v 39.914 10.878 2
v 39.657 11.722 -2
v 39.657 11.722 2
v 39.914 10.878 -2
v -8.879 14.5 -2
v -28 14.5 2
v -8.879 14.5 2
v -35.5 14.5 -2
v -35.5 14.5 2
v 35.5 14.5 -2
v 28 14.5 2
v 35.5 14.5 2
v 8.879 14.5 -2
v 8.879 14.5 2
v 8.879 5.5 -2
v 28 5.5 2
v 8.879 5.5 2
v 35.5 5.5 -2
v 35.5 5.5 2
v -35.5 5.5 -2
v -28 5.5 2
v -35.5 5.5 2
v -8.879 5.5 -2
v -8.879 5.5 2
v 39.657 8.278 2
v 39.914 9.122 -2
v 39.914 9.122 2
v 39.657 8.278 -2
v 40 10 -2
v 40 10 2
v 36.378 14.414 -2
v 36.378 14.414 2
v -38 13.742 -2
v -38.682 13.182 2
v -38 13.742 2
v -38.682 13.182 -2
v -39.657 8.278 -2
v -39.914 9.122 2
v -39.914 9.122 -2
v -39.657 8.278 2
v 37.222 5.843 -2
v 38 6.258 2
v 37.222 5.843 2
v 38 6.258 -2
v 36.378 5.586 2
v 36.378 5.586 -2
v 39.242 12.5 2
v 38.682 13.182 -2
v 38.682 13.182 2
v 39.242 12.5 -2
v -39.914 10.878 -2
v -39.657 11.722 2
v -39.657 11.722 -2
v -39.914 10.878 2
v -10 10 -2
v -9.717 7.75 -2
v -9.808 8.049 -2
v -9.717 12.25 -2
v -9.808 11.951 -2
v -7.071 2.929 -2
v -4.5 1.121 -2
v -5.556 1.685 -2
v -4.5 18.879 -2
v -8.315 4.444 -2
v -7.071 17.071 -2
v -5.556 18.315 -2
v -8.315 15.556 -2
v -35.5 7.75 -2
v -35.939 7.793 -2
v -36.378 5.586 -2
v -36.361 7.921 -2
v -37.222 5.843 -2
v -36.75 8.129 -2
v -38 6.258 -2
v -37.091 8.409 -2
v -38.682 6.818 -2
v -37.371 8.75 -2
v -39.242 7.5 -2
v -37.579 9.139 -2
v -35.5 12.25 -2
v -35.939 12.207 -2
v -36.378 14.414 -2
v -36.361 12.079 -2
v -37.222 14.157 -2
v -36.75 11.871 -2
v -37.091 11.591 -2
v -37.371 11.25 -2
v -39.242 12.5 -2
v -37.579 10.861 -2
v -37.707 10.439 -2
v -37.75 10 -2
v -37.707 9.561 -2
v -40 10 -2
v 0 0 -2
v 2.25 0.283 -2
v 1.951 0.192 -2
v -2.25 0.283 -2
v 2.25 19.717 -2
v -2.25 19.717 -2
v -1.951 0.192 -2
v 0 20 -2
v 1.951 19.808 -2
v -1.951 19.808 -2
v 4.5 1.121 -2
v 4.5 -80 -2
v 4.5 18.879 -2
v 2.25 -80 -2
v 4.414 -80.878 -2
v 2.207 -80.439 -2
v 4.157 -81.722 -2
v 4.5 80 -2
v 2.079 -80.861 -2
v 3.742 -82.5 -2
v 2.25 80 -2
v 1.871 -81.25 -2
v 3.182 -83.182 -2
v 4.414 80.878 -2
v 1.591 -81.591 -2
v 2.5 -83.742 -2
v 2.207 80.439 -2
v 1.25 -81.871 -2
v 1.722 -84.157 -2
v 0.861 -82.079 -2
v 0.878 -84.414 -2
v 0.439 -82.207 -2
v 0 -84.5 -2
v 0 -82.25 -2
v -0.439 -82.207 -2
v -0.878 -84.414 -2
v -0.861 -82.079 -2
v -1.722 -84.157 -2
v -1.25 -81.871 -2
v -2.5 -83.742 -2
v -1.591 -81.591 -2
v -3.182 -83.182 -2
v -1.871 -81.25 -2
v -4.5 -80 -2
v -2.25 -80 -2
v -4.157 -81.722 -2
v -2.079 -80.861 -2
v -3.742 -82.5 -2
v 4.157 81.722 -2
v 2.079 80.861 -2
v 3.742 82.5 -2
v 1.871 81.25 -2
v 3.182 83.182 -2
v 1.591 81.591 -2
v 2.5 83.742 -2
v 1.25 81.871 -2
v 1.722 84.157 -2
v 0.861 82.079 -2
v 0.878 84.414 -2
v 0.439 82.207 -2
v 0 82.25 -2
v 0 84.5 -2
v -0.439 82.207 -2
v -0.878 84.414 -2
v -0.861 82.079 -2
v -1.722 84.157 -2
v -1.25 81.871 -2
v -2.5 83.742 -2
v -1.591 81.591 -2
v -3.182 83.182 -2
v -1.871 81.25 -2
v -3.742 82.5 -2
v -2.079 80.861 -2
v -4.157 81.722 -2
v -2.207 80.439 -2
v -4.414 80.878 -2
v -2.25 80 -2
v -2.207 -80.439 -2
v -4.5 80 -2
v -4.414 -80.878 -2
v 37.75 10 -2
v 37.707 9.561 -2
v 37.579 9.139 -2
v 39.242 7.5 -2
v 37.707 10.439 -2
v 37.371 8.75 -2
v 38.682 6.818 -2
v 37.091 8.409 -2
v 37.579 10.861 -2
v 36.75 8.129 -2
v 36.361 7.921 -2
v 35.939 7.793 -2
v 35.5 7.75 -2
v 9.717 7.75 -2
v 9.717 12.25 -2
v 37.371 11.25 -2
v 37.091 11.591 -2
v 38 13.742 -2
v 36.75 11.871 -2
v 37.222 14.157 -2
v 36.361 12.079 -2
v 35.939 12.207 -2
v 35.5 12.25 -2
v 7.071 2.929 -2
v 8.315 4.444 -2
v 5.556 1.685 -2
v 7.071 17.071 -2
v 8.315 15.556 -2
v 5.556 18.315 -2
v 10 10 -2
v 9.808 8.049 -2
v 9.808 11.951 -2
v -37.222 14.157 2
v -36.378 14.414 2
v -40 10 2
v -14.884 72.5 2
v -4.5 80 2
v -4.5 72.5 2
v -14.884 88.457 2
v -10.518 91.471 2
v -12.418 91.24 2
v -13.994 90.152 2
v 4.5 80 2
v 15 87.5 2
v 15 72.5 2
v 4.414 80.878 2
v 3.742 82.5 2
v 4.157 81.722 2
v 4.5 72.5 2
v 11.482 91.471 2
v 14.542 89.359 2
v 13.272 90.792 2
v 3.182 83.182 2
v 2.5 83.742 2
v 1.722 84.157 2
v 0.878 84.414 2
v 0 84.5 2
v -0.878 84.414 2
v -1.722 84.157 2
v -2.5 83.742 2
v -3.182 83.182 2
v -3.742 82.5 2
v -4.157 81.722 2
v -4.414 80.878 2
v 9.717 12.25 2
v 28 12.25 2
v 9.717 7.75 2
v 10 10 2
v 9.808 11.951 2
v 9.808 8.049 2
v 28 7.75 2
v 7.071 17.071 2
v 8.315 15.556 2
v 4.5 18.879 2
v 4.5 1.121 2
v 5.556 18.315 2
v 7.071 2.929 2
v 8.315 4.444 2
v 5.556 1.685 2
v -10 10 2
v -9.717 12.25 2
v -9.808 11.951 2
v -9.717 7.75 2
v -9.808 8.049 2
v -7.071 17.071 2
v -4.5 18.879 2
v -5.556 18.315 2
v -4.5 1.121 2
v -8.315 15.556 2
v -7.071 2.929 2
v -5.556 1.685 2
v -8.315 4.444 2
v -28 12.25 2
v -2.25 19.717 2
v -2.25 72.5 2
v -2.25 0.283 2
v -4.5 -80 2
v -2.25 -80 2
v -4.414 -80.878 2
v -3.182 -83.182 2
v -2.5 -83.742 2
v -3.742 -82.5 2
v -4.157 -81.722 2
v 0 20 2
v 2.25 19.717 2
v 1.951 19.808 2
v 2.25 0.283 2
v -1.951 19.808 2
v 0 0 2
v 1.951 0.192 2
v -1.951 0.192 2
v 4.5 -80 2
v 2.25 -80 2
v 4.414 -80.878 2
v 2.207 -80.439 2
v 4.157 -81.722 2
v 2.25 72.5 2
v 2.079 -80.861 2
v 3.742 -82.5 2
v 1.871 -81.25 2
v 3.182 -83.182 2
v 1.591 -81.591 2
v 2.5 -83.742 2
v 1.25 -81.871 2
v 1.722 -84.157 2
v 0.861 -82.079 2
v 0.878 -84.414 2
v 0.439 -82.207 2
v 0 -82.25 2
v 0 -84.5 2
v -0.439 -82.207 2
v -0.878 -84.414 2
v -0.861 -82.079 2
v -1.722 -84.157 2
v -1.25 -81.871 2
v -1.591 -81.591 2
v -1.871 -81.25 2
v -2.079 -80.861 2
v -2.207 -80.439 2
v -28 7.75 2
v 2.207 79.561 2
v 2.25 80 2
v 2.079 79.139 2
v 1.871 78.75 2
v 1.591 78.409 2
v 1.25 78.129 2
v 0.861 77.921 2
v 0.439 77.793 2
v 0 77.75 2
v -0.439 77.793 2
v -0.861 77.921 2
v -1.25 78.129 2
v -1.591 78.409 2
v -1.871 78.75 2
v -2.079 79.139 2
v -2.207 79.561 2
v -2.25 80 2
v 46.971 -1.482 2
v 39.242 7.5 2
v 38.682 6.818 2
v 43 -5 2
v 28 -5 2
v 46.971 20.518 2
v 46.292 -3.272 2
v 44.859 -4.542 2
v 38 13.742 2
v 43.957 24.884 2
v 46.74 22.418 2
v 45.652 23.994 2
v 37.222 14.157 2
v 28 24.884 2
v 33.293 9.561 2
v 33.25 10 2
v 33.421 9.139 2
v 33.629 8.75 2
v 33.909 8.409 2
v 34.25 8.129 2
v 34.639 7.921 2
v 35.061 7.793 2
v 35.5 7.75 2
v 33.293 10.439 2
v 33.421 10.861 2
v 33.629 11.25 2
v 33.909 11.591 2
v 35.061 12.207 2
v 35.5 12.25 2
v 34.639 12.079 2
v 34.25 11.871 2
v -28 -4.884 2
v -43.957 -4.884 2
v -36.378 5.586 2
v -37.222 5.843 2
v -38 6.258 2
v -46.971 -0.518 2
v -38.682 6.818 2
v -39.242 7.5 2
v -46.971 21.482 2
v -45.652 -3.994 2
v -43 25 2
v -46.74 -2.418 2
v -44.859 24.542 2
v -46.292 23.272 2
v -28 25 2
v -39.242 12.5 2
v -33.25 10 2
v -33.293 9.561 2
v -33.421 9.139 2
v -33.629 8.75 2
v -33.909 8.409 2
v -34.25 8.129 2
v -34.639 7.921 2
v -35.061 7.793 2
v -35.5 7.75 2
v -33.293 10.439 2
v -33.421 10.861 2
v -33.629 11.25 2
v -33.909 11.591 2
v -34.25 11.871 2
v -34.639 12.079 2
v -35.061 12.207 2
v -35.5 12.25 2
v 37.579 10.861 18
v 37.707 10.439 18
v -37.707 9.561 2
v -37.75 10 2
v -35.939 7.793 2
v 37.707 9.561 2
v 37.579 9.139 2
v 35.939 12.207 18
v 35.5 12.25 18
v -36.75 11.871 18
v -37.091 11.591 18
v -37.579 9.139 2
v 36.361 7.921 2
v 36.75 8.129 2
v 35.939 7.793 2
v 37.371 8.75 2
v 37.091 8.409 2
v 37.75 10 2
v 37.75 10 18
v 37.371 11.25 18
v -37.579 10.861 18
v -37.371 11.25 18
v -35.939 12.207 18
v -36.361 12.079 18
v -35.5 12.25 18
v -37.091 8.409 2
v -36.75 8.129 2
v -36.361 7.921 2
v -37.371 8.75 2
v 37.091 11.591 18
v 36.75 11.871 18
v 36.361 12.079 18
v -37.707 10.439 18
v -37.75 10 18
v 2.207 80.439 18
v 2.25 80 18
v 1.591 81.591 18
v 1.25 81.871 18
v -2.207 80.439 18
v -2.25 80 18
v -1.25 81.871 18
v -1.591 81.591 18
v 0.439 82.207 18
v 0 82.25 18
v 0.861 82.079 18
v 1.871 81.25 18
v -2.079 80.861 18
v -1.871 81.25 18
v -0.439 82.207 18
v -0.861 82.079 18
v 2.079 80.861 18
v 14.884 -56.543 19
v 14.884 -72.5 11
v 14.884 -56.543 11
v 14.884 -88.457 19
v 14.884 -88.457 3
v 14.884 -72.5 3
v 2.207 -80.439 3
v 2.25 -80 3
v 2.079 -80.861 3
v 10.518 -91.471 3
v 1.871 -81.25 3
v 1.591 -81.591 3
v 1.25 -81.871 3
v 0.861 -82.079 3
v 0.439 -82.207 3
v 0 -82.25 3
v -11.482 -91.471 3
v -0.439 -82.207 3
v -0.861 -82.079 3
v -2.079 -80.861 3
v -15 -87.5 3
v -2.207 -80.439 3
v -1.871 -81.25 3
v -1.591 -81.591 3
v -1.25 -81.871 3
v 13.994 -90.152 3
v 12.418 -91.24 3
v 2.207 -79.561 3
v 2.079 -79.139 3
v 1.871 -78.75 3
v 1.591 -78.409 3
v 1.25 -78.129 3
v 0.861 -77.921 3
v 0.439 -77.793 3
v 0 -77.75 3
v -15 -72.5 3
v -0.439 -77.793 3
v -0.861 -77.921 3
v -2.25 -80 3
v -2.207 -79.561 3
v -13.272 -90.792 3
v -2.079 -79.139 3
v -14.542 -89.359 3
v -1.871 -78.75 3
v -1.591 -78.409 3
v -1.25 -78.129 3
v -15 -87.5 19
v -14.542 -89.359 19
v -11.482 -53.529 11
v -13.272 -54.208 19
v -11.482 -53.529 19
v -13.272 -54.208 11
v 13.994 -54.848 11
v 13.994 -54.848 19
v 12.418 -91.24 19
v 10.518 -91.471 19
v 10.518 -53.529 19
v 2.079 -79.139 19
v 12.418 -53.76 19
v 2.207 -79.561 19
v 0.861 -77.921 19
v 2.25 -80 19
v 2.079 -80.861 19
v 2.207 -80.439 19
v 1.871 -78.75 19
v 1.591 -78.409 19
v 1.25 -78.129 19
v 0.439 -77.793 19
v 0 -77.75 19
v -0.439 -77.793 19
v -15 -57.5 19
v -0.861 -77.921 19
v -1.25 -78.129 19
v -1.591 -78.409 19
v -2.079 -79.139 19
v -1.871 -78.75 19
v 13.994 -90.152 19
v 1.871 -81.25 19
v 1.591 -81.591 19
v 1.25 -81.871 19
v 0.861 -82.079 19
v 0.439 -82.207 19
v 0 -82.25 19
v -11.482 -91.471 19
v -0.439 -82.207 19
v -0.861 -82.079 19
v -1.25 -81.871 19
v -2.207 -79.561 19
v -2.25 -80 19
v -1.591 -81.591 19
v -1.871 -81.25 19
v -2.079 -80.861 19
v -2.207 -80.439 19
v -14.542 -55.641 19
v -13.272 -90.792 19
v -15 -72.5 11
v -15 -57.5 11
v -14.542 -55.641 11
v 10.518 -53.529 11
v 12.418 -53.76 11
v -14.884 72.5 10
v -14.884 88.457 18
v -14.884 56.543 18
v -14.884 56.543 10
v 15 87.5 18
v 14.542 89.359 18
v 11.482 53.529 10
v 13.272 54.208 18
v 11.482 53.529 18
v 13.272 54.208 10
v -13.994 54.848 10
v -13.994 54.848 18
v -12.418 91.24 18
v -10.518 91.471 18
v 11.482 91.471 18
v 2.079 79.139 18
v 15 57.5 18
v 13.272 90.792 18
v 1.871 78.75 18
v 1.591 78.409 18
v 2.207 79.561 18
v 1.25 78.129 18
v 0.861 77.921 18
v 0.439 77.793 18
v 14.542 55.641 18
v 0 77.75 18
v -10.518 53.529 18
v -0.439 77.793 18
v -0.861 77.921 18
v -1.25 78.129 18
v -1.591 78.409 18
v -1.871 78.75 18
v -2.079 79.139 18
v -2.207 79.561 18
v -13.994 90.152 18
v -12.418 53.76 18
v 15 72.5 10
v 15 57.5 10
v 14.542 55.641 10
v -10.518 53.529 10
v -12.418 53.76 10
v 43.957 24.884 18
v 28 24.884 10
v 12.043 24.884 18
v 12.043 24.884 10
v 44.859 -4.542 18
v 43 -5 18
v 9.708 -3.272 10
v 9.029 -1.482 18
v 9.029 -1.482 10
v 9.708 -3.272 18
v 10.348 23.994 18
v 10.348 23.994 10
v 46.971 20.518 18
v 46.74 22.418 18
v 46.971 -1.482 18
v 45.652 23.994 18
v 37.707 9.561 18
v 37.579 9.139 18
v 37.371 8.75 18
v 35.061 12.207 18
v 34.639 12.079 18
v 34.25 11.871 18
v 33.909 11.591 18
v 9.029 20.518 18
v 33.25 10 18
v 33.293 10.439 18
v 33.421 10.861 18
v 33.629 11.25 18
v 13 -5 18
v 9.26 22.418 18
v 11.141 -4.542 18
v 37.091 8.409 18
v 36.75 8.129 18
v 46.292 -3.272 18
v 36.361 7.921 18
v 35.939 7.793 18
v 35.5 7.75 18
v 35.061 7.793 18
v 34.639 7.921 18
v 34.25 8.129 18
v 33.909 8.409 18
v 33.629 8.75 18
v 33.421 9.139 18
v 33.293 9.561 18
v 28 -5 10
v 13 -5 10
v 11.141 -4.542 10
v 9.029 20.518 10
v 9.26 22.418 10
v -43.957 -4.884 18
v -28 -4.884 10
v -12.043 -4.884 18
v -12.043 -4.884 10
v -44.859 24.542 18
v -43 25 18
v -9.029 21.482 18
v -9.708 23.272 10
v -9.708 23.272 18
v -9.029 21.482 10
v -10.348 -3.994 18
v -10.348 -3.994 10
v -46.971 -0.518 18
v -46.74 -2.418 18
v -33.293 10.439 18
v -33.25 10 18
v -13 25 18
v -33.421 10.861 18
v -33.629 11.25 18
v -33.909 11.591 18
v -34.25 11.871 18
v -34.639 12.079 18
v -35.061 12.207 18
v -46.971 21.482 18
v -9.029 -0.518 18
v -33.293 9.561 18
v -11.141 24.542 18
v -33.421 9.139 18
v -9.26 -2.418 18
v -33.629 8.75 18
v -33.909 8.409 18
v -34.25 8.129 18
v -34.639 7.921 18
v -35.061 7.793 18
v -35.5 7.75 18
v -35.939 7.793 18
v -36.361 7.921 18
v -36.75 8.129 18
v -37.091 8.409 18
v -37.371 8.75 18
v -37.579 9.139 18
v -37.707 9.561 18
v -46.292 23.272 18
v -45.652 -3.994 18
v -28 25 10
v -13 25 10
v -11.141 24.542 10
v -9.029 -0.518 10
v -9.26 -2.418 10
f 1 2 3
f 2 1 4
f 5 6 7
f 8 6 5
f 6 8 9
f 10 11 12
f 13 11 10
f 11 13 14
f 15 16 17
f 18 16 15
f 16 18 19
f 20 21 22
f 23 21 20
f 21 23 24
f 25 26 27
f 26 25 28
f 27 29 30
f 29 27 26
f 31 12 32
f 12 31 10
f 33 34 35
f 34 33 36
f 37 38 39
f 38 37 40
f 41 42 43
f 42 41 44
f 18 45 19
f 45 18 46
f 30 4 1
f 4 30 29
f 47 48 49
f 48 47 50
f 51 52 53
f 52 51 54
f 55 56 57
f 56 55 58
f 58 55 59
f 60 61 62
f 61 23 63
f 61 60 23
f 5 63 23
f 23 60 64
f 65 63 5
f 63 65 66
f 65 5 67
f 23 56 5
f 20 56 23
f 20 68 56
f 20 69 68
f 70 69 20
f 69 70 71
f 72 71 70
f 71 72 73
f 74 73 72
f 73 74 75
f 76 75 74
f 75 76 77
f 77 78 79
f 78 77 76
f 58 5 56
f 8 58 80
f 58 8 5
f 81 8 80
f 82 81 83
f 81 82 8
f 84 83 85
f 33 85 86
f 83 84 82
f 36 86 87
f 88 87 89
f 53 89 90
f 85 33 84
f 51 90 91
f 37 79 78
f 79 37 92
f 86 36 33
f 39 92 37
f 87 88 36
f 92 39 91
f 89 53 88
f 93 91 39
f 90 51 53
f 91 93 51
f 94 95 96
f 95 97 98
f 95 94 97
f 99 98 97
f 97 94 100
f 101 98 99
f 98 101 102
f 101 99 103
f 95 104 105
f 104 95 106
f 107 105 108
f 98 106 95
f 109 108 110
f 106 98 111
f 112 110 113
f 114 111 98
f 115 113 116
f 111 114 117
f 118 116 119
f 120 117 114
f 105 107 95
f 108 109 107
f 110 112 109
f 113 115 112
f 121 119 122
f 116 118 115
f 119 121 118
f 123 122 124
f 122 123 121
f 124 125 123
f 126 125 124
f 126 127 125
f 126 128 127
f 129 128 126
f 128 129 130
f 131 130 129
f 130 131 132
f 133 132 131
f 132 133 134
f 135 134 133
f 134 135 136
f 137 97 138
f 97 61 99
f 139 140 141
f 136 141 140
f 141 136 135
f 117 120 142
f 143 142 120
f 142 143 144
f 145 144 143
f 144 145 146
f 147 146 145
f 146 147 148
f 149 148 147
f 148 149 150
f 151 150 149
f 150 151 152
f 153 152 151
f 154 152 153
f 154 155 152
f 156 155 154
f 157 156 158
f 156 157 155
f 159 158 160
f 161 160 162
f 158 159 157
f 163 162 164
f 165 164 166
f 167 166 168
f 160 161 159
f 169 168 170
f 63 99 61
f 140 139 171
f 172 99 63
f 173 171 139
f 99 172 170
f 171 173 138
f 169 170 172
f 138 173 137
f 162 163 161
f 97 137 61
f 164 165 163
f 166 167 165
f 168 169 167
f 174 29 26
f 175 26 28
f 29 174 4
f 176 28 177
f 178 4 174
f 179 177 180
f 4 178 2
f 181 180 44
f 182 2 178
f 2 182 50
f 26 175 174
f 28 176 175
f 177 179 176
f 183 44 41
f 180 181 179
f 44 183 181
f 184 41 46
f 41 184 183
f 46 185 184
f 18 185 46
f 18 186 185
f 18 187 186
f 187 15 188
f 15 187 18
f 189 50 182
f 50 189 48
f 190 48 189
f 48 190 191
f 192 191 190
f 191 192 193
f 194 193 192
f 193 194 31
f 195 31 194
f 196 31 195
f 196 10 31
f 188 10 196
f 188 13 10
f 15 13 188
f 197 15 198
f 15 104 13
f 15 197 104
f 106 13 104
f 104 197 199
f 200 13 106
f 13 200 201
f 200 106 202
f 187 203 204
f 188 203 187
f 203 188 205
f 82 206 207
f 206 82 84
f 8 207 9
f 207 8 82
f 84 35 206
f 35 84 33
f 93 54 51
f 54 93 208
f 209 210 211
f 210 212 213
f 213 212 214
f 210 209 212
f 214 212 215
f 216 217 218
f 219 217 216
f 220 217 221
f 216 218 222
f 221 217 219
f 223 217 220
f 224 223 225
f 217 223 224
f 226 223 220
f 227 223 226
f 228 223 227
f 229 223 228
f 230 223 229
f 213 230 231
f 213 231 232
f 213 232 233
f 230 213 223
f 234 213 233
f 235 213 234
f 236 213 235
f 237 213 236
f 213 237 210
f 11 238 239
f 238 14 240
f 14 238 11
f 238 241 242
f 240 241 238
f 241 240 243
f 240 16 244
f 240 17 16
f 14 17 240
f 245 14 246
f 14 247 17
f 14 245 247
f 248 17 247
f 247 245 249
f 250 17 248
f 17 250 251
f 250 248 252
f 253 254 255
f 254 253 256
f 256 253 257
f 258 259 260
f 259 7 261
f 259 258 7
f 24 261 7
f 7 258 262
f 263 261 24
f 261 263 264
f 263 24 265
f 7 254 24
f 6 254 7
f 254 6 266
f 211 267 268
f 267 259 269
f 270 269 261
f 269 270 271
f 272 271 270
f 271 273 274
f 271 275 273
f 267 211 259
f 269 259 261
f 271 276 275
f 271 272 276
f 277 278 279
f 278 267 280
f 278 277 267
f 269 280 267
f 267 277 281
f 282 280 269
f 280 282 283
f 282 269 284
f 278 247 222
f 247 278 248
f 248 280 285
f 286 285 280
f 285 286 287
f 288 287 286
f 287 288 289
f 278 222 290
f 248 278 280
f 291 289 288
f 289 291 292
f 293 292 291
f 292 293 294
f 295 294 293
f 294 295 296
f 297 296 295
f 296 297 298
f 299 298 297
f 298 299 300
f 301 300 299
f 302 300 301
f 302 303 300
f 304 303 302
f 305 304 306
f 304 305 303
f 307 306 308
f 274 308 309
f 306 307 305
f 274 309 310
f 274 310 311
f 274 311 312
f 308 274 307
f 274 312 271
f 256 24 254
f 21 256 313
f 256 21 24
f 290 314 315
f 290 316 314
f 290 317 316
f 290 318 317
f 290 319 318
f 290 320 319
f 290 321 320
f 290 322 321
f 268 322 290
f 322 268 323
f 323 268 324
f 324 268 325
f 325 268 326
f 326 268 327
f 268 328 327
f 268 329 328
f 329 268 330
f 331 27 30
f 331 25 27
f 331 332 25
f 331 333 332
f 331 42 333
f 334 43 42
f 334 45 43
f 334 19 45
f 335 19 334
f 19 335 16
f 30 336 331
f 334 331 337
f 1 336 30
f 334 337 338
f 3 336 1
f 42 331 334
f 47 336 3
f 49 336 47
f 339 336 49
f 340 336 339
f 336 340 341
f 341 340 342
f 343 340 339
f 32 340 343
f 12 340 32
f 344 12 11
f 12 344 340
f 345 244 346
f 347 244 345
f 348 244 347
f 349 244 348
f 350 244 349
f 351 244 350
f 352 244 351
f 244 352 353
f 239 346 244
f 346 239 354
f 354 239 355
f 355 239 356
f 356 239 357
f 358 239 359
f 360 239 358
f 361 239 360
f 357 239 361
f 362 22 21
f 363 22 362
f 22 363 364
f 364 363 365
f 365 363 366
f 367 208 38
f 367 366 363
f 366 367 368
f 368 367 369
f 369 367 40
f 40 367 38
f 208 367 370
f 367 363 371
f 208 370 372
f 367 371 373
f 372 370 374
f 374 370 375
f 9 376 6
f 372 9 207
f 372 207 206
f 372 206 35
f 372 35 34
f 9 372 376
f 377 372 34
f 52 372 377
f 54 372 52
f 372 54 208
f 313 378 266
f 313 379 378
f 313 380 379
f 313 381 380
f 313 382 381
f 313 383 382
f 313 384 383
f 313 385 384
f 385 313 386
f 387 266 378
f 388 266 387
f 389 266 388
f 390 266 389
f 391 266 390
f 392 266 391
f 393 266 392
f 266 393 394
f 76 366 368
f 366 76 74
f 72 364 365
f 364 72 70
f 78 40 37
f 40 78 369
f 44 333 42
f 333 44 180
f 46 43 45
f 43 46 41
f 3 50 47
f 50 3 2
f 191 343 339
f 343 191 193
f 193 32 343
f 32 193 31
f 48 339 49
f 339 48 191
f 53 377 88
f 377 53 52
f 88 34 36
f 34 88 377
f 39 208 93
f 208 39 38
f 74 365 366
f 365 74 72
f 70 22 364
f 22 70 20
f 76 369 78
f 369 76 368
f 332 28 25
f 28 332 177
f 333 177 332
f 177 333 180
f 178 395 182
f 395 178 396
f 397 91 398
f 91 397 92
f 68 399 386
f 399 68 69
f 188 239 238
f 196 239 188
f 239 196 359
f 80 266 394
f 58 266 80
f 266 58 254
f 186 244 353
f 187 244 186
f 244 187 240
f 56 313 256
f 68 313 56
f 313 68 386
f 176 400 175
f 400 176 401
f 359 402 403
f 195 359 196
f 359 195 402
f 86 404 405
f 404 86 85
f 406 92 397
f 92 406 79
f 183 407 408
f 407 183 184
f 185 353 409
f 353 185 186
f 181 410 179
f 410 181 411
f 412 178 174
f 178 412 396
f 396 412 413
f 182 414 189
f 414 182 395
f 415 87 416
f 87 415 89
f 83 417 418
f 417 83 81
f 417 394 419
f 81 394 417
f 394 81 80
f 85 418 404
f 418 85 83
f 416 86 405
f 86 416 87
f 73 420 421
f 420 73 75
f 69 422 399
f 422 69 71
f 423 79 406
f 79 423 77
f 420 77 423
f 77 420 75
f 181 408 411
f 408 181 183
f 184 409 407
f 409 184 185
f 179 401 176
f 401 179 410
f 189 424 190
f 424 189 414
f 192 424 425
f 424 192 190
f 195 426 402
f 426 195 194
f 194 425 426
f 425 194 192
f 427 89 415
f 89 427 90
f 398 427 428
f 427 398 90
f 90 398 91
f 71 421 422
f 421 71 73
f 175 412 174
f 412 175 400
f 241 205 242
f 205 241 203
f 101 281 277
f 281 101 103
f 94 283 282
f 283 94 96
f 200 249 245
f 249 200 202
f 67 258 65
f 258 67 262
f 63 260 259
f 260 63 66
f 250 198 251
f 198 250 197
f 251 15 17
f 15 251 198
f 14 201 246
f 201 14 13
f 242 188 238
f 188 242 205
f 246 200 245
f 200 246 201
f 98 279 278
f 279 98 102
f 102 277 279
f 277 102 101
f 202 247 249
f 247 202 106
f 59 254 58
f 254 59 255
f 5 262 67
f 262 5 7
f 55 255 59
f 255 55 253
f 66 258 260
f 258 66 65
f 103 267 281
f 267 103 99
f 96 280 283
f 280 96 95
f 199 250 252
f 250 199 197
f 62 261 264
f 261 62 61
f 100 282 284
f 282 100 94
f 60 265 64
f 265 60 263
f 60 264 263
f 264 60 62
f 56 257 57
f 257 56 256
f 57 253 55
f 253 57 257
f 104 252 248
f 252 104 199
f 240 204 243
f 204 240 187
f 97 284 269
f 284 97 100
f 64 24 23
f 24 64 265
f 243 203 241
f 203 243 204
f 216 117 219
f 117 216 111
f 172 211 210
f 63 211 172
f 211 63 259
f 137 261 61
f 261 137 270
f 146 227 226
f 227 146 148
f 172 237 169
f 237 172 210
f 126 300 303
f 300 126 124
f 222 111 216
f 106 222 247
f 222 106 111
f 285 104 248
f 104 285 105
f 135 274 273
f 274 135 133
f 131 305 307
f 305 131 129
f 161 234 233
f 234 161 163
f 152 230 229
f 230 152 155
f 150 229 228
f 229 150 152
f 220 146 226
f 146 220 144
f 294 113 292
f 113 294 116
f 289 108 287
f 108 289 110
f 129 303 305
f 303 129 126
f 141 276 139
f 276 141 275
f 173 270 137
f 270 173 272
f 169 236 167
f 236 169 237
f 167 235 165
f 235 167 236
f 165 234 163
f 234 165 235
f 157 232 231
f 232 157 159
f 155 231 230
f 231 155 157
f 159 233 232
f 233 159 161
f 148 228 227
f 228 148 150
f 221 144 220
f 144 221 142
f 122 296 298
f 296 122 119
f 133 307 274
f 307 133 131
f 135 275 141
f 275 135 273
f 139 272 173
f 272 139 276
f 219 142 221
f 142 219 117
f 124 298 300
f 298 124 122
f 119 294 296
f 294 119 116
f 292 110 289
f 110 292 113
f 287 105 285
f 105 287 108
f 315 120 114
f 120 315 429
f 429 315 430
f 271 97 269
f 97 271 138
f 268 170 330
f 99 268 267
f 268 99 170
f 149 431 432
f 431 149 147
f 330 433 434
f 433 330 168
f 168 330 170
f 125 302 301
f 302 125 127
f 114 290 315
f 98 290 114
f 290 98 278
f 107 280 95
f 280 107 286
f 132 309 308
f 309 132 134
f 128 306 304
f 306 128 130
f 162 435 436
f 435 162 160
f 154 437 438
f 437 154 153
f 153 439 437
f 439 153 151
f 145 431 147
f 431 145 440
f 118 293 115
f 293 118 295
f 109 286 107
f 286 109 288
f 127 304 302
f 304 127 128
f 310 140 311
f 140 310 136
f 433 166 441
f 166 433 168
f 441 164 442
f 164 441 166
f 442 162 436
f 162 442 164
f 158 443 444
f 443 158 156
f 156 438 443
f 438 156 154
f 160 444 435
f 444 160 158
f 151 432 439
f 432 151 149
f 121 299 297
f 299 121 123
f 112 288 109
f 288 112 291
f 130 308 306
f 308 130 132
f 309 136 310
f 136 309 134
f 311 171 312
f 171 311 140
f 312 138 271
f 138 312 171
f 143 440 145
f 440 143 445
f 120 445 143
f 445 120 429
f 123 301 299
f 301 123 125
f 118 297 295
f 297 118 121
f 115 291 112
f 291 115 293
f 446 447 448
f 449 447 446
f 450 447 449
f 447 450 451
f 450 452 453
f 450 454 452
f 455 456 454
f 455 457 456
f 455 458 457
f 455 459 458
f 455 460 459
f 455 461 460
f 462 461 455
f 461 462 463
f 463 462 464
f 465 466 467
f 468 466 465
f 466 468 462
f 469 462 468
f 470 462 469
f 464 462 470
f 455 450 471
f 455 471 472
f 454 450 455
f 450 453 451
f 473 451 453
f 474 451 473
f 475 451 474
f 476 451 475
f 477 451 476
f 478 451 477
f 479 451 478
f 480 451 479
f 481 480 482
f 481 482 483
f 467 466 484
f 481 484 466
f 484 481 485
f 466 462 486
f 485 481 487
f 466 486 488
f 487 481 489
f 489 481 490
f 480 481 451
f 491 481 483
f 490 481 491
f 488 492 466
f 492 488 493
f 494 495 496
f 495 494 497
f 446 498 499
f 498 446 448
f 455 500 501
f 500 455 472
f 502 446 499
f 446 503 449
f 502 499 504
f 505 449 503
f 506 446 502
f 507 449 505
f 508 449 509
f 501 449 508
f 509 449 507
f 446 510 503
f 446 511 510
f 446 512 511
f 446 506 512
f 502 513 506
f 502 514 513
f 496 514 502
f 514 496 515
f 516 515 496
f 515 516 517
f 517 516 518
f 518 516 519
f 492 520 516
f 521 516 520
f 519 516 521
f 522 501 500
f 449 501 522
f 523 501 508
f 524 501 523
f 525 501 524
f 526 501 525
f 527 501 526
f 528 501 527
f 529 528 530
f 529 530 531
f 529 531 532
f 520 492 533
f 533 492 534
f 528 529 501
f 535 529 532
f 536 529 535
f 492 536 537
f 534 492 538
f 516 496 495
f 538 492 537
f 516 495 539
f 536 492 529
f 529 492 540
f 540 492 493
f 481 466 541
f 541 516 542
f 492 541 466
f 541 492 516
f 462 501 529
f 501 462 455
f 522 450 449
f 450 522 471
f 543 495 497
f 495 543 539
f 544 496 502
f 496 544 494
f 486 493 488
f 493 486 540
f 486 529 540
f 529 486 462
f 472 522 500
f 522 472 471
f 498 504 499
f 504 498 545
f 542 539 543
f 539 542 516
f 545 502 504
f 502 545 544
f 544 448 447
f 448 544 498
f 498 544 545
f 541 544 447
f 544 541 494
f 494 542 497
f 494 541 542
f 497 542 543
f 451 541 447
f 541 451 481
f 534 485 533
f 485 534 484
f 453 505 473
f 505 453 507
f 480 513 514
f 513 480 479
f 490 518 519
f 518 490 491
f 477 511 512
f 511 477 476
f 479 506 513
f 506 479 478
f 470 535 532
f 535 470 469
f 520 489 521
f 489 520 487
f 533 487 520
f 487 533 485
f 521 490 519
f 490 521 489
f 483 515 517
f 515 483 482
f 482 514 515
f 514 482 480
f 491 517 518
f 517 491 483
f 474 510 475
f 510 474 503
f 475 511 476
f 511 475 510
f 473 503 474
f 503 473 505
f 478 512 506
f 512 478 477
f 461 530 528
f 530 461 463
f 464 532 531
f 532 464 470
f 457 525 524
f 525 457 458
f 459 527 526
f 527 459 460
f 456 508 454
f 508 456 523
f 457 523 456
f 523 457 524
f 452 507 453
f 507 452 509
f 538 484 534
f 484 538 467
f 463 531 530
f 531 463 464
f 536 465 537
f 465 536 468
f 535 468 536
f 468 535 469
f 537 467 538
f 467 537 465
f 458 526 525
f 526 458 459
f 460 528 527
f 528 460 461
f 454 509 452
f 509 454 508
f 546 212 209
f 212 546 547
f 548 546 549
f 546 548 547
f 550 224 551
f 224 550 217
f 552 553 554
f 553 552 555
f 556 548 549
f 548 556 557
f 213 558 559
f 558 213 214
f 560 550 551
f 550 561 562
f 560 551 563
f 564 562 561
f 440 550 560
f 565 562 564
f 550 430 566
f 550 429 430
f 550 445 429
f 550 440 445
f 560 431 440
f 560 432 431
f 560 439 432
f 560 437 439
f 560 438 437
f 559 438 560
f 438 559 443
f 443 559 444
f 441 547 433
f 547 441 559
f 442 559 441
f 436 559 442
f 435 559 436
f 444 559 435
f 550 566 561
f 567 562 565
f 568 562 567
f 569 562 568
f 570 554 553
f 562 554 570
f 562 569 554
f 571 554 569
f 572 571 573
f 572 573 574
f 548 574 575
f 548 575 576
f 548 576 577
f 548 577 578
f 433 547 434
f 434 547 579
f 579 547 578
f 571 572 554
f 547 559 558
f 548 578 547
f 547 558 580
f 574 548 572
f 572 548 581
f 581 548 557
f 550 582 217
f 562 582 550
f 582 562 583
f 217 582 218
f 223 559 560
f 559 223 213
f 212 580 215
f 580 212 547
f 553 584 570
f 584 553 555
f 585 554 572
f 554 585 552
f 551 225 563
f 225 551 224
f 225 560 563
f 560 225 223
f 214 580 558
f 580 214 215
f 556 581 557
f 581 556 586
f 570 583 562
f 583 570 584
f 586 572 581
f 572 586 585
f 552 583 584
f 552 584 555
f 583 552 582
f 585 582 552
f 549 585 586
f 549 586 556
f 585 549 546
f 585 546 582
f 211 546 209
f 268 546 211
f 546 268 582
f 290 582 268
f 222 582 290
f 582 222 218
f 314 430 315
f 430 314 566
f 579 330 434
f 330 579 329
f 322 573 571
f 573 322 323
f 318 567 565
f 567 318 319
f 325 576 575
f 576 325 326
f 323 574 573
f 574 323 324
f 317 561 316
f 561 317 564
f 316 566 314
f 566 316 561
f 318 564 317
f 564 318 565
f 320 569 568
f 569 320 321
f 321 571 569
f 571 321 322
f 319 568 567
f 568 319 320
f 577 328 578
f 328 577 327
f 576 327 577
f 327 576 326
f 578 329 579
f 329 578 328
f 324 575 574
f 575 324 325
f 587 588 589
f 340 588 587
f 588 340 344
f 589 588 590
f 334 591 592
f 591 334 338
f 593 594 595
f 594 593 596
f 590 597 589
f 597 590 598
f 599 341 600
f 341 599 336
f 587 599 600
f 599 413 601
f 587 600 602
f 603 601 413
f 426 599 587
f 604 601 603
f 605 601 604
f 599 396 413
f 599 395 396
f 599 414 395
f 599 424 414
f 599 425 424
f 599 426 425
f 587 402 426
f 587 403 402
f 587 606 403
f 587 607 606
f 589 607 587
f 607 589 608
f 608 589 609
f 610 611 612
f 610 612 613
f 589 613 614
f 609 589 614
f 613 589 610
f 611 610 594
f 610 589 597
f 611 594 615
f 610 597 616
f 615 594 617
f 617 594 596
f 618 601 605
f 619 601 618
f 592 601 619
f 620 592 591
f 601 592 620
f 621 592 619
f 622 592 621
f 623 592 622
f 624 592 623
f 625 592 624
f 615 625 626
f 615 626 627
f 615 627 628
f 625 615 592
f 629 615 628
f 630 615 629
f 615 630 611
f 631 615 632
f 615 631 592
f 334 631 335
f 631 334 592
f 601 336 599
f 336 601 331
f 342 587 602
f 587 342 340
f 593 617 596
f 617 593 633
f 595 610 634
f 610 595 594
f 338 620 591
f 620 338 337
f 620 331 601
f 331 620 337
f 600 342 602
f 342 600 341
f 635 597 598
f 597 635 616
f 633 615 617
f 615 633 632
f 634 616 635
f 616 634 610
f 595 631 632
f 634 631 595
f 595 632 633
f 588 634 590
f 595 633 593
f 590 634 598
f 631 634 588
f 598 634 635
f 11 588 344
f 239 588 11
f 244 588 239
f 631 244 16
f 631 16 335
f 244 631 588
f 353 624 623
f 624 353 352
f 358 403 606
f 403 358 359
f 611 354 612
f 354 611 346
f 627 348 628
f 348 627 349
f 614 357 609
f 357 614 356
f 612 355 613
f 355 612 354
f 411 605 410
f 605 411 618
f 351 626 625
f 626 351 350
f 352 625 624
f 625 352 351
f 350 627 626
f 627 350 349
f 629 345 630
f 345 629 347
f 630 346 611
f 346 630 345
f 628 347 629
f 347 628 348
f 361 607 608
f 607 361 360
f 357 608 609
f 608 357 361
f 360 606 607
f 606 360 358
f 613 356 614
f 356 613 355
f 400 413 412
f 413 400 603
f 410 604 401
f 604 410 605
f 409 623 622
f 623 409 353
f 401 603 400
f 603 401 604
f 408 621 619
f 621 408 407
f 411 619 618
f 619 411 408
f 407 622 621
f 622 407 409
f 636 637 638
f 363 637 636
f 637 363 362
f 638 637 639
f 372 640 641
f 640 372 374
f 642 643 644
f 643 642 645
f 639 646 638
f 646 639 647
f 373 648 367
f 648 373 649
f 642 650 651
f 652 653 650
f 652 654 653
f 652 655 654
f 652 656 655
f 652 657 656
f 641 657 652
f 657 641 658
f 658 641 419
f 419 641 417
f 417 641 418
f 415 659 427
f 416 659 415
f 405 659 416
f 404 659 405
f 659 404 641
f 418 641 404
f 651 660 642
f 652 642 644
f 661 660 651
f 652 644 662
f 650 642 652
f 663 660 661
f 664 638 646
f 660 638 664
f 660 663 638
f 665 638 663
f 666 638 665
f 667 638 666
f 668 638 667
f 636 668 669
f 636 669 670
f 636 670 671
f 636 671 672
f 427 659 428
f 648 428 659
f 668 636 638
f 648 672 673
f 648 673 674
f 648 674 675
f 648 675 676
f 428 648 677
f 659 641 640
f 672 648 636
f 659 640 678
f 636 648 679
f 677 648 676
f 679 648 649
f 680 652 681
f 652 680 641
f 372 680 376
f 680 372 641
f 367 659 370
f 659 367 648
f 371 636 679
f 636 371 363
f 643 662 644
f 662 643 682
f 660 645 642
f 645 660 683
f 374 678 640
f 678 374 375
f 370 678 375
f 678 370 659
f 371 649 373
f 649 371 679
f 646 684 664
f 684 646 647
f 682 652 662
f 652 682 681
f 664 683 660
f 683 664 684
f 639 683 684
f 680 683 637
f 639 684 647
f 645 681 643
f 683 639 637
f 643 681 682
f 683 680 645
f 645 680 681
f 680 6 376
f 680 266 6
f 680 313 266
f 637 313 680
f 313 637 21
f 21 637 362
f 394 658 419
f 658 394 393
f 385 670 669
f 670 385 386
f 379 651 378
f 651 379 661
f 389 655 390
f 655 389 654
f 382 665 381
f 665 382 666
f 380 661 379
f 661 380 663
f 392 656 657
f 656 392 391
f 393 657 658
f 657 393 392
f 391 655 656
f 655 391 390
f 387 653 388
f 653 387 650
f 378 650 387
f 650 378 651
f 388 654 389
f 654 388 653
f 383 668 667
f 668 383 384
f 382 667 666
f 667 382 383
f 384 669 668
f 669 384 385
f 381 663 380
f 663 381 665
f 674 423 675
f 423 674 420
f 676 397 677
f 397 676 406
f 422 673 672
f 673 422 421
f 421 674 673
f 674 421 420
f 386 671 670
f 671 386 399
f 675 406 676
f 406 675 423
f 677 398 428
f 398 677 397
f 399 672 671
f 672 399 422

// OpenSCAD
len_phone = 145;
d_screw_m4 = 4.5;
width_phone = 56;
thikness_holder = 4;
thikness_phone = 8;
append = 15;
corner_round = 8;
w_grip = 30;

holder_set();
//vertical_block(len_phone);

module grip() {
    difference() {
        grip_base();
        
        color("red")
        translate([0, w_grip/2, thikness_phone])
        cube([w_grip+1, w_grip, 2*thikness_phone], center=true);
        
        translate([0, -w_grip/4, 0])
        cylinder(d=d_screw_m4, 3*thikness_phone, center=true, $fn=32);
    }
}


module grip_base() {
    hull() {
        translate([w_grip/2-corner_round/2, -w_grip/2, 0])
        cylinder(d=corner_round, 2*thikness_phone, center=true);
        
        translate([-w_grip/2+corner_round/2, -w_grip/2, 0])
        cylinder(d=corner_round, 2*thikness_phone, center=true);
        
        translate([w_grip/2-corner_round/2, w_grip/2, 0])
        cylinder(d=corner_round, 2*thikness_phone, center=true);
        
        translate([-w_grip/2+corner_round/2, w_grip/2, 0])
        cylinder(d=corner_round, 2*thikness_phone, center=true);
    }
}


module horizontal_block(len_block, offset_vertical) {
    len_block = len_block + append;
    
    translate([0, offset_vertical, 0])
    cylinder(d=20, h=thikness_holder, center=true, $fn=32);
    
    difference() {
        hull() {
            translate([len_block/2, offset_vertical, 0])
            cylinder(d=9, h=thikness_holder, center=true, $fn=32);
            
            translate([-len_block/2, offset_vertical, 0])
            cylinder(d=9, h=thikness_holder, center=true, $fn=32);
        }
        color("red")
        hull() {
            translate([len_block/2, offset_vertical, 0])
            cylinder(d=d_screw_m4, h=thikness_holder+2, center=true, $fn=32);
            
            translate([-len_block/2, offset_vertical, 0])
            cylinder(d=d_screw_m4, h=thikness_holder+2, center=true, $fn=32);
        }
    }
}


module vertical_block(len_block) {
    len_block = len_block + append;
    
        difference() {
            hull() {
                //translate([0, -len_phone/2, 0])
                translate([0, -len_block/2, 0])
                cylinder(d=9, h=thikness_holder, center=true, $fn=32);
                
                //translate([0, -len_phone/2, 0])
                translate([0, len_block/2, 0])
                cylinder(d=9, h=thikness_holder, center=true, $fn=32);
            }
            color("red")
            hull() {
                //translate([0, -len_phone/2, 0])
                translate([0, -len_block/2, 0])
                cylinder(d=d_screw_m4, h=thikness_holder+2, center=true, $fn=32);
                
                //translate([0, -len_phone/2, 0])
                translate([0, len_block/2, 0])
                cylinder(d=d_screw_m4, h=thikness_holder+2, center=true, $fn=32);
        }
    }
}

module holder_set() {
    horizontal_block(len_block=width_phone, offset_vertical=10);
    vertical_block(len_block=len_phone);
    
    translate([0, -len_phone/2, thikness_phone+thikness_holder/2+1])
    rotate([0, 180, 0])
    grip();
    
    translate([0, len_phone/2, thikness_phone+thikness_holder/2])
    rotate([0, 180, 180])
    grip();
    
    translate([width_phone/2, 10, thikness_phone+thikness_holder/2])
    rotate([0, 180, 90])
    grip();
    
    translate([-width_phone/2, 10, thikness_phone+thikness_holder/2])
    rotate([0, 180, -90])
    grip();
}
